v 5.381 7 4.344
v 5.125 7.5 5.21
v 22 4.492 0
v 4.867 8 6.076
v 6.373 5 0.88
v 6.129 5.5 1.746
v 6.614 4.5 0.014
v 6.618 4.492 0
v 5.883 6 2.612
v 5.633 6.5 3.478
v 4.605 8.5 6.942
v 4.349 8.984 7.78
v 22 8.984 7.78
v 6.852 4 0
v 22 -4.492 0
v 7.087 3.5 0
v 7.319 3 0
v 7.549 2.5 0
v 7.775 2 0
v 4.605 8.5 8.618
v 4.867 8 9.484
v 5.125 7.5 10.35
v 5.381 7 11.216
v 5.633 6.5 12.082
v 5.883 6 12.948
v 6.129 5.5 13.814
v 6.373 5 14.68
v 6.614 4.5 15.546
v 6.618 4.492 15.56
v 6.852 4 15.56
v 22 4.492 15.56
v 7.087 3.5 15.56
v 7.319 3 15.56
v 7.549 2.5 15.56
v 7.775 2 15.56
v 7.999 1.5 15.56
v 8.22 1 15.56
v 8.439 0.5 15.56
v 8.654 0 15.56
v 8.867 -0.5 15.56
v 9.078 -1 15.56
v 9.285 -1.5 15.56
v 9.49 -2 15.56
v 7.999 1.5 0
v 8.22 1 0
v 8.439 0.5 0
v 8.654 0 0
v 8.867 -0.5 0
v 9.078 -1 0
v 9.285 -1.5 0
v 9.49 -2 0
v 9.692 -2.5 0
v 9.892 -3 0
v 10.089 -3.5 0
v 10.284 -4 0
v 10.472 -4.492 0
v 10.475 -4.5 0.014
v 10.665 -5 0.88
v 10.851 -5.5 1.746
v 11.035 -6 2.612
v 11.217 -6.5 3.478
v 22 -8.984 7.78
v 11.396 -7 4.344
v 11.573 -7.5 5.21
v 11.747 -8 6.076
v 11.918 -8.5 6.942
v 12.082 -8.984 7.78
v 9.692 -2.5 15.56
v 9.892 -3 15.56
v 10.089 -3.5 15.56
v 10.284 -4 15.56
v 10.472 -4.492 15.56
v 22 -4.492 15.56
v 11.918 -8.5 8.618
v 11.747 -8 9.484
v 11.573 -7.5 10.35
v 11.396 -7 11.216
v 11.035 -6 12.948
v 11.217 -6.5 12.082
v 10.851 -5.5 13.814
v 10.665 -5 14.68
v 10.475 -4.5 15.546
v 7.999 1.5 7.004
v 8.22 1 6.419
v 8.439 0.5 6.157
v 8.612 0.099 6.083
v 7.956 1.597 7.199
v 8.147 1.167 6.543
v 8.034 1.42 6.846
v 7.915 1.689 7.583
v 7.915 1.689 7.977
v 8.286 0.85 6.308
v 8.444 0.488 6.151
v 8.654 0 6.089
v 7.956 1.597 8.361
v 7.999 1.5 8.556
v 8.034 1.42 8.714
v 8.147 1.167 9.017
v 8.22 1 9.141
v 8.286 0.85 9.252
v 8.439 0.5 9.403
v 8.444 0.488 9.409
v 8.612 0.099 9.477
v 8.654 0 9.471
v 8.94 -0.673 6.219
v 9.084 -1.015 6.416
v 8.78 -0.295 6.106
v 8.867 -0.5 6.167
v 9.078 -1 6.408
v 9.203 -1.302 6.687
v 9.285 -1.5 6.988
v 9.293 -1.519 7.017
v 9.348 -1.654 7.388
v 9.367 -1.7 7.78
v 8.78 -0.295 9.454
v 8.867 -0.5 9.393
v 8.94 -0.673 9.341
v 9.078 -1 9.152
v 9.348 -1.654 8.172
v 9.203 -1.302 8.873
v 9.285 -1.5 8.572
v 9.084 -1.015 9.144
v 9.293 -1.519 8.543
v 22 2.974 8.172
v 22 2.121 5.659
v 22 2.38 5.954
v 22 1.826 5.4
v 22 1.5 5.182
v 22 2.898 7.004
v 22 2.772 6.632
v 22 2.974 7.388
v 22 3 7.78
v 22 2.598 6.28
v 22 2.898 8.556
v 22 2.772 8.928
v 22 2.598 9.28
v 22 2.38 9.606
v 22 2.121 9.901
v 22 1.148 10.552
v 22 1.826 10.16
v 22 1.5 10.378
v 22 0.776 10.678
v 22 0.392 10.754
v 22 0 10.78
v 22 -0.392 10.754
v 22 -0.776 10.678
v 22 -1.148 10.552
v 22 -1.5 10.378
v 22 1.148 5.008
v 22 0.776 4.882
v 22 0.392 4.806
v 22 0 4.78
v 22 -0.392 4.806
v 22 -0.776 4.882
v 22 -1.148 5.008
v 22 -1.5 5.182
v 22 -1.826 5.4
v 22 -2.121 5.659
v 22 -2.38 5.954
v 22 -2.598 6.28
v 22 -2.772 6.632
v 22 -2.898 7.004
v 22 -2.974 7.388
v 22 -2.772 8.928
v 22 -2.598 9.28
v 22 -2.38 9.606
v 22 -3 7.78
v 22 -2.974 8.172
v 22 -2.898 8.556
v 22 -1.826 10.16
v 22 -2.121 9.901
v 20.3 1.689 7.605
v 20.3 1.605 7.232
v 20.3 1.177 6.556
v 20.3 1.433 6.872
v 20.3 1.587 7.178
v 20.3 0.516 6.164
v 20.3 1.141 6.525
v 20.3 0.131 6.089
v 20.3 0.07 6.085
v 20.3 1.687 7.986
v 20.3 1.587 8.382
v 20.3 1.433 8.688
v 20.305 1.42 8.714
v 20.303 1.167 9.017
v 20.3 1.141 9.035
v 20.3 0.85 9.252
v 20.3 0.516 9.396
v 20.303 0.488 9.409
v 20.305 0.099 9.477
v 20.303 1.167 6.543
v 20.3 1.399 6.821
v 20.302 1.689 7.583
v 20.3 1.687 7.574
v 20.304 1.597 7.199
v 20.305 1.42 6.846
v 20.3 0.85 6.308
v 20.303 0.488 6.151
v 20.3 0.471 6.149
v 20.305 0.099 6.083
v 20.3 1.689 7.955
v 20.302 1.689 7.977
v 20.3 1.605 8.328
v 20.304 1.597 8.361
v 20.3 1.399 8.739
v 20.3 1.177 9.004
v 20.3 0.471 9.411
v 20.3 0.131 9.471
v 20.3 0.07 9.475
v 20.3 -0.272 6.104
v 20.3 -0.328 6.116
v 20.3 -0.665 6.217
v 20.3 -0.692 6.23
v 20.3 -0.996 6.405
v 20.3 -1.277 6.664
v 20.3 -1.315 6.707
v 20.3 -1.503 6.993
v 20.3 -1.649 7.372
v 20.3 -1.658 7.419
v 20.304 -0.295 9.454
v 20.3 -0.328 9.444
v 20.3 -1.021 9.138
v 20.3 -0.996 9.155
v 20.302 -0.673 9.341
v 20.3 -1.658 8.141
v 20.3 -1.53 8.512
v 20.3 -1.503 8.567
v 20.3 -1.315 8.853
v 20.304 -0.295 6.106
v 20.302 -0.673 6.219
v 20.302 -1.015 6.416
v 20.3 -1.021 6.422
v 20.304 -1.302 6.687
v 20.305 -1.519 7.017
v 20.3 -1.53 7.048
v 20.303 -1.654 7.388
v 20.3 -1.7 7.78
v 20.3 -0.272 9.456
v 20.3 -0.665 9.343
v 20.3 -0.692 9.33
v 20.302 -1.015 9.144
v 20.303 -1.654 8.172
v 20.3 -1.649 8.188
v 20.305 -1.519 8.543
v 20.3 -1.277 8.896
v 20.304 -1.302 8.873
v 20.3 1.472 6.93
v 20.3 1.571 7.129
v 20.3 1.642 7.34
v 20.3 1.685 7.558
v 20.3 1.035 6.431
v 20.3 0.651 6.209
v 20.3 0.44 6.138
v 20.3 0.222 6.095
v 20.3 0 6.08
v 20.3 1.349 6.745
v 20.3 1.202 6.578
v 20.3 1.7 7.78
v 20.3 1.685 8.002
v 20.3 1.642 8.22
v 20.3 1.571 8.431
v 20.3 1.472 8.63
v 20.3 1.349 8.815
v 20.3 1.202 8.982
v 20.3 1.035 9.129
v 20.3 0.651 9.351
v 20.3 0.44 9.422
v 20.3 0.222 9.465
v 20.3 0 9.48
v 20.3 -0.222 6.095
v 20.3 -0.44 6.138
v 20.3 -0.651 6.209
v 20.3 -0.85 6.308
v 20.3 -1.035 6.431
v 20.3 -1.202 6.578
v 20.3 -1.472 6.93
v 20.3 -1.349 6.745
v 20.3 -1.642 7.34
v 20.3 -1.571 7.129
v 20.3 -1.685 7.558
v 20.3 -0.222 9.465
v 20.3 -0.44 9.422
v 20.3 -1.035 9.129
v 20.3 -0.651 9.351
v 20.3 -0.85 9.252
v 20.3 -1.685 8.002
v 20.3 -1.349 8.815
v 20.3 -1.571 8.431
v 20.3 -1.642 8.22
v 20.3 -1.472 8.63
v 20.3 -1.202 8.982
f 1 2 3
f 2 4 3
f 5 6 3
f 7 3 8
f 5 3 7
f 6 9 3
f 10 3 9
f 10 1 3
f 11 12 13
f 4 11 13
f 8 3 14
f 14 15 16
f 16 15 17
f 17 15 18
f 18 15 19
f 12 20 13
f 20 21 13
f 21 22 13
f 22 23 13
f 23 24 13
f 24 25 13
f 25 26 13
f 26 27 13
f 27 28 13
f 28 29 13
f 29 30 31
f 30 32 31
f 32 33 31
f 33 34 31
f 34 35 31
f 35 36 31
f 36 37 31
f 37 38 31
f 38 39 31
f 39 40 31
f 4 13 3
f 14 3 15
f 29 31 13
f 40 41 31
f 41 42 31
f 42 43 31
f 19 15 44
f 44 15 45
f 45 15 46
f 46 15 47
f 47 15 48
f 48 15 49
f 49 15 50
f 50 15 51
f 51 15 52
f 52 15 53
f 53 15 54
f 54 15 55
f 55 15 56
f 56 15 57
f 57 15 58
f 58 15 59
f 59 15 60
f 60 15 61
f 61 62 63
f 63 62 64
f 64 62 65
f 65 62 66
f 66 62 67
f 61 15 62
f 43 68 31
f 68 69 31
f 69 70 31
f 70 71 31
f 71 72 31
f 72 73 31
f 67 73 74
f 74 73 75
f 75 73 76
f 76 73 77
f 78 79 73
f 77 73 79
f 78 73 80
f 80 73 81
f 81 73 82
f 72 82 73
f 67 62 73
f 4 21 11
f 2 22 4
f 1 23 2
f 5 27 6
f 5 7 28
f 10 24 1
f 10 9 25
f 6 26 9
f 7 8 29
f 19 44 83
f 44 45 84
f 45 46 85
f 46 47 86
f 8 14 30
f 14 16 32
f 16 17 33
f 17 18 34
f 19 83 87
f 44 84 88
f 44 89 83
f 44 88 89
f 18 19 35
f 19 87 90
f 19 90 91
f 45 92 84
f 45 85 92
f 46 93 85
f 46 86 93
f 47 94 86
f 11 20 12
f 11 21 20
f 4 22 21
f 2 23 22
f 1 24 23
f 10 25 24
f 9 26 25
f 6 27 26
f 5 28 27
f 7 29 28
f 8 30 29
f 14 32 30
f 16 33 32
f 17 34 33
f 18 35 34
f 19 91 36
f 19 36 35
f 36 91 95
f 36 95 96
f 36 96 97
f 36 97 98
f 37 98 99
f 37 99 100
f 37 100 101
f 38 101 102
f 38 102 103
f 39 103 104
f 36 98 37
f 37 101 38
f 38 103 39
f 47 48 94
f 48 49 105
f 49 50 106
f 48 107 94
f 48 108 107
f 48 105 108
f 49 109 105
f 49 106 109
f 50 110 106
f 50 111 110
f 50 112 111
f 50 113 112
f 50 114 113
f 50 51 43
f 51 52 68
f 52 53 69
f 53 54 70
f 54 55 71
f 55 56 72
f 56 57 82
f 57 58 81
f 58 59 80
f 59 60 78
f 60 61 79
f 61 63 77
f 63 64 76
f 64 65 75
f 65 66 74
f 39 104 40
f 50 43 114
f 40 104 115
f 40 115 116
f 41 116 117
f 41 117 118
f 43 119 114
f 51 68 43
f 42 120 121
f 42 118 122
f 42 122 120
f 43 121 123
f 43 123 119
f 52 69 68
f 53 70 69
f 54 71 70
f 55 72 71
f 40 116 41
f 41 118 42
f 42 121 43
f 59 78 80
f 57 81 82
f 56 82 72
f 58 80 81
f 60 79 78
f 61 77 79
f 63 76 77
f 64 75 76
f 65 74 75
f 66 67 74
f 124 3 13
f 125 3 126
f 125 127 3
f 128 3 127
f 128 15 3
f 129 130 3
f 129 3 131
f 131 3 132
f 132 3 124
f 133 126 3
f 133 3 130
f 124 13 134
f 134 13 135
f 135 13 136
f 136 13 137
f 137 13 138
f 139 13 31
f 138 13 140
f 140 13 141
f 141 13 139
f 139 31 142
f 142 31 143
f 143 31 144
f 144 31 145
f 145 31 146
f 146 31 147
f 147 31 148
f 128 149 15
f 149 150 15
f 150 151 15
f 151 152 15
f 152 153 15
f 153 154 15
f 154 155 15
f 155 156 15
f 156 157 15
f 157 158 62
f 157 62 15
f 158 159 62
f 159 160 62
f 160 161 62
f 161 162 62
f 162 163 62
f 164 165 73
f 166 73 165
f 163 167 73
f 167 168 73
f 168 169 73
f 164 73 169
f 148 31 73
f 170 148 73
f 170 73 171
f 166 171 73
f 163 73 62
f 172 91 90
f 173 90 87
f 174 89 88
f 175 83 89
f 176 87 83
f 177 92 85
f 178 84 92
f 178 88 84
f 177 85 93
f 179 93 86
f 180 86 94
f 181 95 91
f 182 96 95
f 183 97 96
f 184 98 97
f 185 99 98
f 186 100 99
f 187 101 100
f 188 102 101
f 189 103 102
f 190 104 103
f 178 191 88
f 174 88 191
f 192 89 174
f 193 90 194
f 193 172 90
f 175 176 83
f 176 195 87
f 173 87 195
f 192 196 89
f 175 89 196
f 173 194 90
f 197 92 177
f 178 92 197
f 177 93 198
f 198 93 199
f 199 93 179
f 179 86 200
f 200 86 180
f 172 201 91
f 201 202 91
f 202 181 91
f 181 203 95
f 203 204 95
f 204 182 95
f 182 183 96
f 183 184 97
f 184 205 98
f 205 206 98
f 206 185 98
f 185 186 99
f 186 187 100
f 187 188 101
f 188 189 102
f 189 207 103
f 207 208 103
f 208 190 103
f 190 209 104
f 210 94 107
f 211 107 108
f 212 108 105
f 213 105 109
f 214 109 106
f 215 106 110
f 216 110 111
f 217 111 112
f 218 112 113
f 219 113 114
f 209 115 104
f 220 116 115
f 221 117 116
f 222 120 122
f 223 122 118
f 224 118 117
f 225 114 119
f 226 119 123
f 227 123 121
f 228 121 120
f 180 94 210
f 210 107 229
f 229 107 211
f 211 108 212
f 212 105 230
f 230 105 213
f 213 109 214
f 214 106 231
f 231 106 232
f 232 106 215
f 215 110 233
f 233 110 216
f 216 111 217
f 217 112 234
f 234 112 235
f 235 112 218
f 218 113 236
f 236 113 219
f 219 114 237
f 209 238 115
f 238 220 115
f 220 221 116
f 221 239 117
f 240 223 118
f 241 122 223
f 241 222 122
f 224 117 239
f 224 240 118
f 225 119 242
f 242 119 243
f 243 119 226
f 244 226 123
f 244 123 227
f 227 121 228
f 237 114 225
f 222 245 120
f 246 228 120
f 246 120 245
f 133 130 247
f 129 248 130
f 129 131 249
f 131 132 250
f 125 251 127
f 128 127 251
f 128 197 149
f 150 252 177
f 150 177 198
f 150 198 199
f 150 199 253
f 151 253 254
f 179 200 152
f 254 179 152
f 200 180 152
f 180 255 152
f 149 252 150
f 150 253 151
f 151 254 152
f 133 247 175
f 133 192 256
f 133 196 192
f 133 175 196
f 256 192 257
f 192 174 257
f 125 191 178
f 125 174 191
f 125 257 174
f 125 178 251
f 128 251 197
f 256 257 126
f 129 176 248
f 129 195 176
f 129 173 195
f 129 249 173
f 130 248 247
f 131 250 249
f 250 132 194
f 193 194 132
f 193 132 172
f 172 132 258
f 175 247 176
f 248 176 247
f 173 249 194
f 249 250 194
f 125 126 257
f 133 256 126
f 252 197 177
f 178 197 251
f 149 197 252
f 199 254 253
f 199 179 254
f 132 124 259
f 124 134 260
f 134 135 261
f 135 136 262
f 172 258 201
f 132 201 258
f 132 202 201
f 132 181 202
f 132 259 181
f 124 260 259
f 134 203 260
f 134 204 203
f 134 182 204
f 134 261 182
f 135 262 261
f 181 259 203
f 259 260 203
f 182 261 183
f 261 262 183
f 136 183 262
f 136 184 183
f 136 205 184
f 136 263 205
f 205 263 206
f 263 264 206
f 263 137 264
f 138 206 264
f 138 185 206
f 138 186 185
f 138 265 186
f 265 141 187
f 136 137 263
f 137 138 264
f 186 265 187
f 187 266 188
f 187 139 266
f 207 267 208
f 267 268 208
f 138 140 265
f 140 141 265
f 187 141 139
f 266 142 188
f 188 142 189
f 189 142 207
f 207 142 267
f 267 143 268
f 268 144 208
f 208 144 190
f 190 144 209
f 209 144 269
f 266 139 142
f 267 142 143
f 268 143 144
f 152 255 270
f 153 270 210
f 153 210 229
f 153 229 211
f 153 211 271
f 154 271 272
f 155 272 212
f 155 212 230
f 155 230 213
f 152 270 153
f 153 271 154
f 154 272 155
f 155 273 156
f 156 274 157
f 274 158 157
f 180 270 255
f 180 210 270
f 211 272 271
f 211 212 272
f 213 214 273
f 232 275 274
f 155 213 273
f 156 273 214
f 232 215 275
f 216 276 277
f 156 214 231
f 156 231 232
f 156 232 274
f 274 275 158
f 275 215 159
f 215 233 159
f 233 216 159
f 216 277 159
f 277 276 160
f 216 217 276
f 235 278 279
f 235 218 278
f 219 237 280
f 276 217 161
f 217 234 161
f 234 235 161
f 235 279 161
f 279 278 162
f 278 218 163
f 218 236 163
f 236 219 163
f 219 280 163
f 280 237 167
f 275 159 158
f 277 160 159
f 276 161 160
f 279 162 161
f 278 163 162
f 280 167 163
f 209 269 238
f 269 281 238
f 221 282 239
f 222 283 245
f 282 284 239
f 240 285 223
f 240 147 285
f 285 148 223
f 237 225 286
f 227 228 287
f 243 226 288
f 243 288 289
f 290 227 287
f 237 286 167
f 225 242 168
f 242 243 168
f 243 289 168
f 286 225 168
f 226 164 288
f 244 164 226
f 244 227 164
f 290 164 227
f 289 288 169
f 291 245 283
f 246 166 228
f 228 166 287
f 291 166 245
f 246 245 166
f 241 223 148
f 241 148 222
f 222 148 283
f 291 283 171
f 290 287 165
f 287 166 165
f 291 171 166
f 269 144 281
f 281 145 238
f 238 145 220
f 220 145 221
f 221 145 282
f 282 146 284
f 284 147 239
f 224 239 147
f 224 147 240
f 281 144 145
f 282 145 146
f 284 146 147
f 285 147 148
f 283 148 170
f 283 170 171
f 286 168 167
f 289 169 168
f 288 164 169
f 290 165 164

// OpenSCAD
// ============================================================================
//  hex_ramp_insert — screw-down registration post for the hex ramp's top row
//
//  Solid hex prism: bottom follows the measured transition arc, top is a flat
//  horizontal plane 10 mm above the surface at the hole centre.  One vertical
//  bore down the centre, all the way through, with a countersink colinear
//  with it.  One countersunk screw into the transition underneath.
//
//  Measured reference (ramp_half_hex.stl)
//    hole            15.86 mm across flats, vertical through-bore, x = +16.19
//    top surface     plane y = 0.130691*x + 13.8003   (7.446 deg)
//    underside       rolled transition: arc R = 118.82, centre (63.0, -96.64)
//    band thickness  3.42 mm at the hole centre
// ============================================================================

// ------------------------------ parameters ---------------------------------
hole_af   = 15.86;      // measured hex hole, across flats
clearance = 0.30;       // total diametral clearance (0.15 per side)
insert_af = hole_af - clearance;

slope     = 0.130691;   // ramp surface slope
theta     = atan(slope);

boss_h    = 10.0;       // how far the post stands proud of the surface

hole_x    = 16.189;     // part-local origin = this hole's centre on the surface
y_face    = slope * hole_x + 13.8003;      // surface height in ramp coords
arc_cx    = 63.00 - hole_x;                // arc centre in part-local coords
arc_cy    = -96.64 - y_face;
arc_r     = 118.82;

// screw detent (M3 countersunk), on the hole axis (vertical)
screw_d   = 3.4;
cs_d      = 6.0;
cs_depth  = 1.5;

$fa = 2; $fs = 0.4;

// -------------------------------- helpers ----------------------------------
module hex2d(af) {
    R = af / sqrt(3);
    polygon([for (k = [0:5]) [R * cos(60 * k), R * sin(60 * k)]]);
}

// region below the rolled transition's underside (the measured arc)
module arc_below() {
    R = arc_r; CX = arc_cx; CY = arc_cy;
    pts = [for (x = [-20:0.5:40]) [x, CY + sqrt(max(0.01, R * R - (x - CX) * (x - CX)))] ];
    translate([0, 0, -20]) linear_extrude(height = 40)
        polygon(concat(pts, [[40, -40], [-20, -40]]));
}

// -------------------------------- geometry ---------------------------------
module body() {
    difference() {
        // vertical hex prism, 28 mm tall (covers the full range)
        translate([0, -14, 0]) rotate([-90, 0, 0])
            linear_extrude(height = 28) hex2d(insert_af);
        // remove everything above the flat top (boss_h above the surface)
        translate([-20, boss_h, -20]) cube([40, 20, 40]);
        // remove everything below the arc (keep above it)
        // by subtracting a big block below the arc
    }
    // intersect with above_arc to keep only the part above the arc
}

// simpler: build as intersection of hex prism with above-arc region, then cut top
module part_solid() {
    difference() {
        translate([0, -14, 0]) rotate([-90, 0, 0])
            linear_extrude(height = 28) hex2d(insert_af);
        arc_below();
    }
}

module part() {
    difference() {
        part_solid();
        // flat top: remove everything above boss_h
        translate([-20, boss_h, -20]) cube([40, 20, 40]);
        // vertical bore down the centre
        translate([0, 20, 0]) rotate([90, 0, 0])
            cylinder(h = 40, r = screw_d / 2);
        // countersink at the top, colinear with the bore
        translate([0, boss_h, 0]) rotate([90, 0, 0])
            cylinder(h = cs_depth + 0.2, r1 = cs_d / 2, r2 = screw_d / 2);
    }
}

// print: hex flat on the bed, post axis horizontal
mp = [[0, 1, 0, 0], [-1, 0, 0, 0], [0, 0, 1, 0], [0, 0, 0, 1]];

module part_print() {
    translate([12, 0, insert_af / 2]) multmatrix(mp) part();
}

mode = "print";
if (mode == "print") part_print();
if (mode == "use") part();
